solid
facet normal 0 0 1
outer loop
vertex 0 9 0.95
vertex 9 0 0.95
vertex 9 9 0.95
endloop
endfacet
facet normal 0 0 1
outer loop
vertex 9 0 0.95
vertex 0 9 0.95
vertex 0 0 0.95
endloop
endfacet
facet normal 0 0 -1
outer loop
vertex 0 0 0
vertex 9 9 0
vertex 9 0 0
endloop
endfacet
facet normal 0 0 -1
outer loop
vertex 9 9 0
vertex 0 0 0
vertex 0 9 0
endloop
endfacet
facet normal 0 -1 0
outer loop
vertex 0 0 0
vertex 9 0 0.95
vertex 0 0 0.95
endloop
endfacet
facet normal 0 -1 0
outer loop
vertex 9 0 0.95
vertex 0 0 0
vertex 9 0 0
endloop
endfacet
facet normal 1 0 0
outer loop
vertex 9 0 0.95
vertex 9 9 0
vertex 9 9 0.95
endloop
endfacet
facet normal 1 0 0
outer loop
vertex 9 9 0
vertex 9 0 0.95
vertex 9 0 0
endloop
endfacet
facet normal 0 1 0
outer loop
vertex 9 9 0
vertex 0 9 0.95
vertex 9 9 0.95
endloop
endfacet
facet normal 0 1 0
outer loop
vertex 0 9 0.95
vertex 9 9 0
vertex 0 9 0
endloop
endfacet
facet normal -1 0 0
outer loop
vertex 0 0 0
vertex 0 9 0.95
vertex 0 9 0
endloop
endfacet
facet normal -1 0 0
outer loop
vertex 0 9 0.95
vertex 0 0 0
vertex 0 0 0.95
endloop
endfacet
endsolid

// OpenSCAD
/* Warning, this is a very basic generator with a lot of approximation 
input data : [VQFN, 3SX, 9x9x0.95mm, 64, , A, C04-00394A]
generated by com.zoubworld.electronics.cad.model3d.Basic
Date : Sun Feb 15 10:50:48 CET 2026
*/

//body
color("black")
translate([0,0,0])
cube([9.0,9.0,0.95], center=false);
